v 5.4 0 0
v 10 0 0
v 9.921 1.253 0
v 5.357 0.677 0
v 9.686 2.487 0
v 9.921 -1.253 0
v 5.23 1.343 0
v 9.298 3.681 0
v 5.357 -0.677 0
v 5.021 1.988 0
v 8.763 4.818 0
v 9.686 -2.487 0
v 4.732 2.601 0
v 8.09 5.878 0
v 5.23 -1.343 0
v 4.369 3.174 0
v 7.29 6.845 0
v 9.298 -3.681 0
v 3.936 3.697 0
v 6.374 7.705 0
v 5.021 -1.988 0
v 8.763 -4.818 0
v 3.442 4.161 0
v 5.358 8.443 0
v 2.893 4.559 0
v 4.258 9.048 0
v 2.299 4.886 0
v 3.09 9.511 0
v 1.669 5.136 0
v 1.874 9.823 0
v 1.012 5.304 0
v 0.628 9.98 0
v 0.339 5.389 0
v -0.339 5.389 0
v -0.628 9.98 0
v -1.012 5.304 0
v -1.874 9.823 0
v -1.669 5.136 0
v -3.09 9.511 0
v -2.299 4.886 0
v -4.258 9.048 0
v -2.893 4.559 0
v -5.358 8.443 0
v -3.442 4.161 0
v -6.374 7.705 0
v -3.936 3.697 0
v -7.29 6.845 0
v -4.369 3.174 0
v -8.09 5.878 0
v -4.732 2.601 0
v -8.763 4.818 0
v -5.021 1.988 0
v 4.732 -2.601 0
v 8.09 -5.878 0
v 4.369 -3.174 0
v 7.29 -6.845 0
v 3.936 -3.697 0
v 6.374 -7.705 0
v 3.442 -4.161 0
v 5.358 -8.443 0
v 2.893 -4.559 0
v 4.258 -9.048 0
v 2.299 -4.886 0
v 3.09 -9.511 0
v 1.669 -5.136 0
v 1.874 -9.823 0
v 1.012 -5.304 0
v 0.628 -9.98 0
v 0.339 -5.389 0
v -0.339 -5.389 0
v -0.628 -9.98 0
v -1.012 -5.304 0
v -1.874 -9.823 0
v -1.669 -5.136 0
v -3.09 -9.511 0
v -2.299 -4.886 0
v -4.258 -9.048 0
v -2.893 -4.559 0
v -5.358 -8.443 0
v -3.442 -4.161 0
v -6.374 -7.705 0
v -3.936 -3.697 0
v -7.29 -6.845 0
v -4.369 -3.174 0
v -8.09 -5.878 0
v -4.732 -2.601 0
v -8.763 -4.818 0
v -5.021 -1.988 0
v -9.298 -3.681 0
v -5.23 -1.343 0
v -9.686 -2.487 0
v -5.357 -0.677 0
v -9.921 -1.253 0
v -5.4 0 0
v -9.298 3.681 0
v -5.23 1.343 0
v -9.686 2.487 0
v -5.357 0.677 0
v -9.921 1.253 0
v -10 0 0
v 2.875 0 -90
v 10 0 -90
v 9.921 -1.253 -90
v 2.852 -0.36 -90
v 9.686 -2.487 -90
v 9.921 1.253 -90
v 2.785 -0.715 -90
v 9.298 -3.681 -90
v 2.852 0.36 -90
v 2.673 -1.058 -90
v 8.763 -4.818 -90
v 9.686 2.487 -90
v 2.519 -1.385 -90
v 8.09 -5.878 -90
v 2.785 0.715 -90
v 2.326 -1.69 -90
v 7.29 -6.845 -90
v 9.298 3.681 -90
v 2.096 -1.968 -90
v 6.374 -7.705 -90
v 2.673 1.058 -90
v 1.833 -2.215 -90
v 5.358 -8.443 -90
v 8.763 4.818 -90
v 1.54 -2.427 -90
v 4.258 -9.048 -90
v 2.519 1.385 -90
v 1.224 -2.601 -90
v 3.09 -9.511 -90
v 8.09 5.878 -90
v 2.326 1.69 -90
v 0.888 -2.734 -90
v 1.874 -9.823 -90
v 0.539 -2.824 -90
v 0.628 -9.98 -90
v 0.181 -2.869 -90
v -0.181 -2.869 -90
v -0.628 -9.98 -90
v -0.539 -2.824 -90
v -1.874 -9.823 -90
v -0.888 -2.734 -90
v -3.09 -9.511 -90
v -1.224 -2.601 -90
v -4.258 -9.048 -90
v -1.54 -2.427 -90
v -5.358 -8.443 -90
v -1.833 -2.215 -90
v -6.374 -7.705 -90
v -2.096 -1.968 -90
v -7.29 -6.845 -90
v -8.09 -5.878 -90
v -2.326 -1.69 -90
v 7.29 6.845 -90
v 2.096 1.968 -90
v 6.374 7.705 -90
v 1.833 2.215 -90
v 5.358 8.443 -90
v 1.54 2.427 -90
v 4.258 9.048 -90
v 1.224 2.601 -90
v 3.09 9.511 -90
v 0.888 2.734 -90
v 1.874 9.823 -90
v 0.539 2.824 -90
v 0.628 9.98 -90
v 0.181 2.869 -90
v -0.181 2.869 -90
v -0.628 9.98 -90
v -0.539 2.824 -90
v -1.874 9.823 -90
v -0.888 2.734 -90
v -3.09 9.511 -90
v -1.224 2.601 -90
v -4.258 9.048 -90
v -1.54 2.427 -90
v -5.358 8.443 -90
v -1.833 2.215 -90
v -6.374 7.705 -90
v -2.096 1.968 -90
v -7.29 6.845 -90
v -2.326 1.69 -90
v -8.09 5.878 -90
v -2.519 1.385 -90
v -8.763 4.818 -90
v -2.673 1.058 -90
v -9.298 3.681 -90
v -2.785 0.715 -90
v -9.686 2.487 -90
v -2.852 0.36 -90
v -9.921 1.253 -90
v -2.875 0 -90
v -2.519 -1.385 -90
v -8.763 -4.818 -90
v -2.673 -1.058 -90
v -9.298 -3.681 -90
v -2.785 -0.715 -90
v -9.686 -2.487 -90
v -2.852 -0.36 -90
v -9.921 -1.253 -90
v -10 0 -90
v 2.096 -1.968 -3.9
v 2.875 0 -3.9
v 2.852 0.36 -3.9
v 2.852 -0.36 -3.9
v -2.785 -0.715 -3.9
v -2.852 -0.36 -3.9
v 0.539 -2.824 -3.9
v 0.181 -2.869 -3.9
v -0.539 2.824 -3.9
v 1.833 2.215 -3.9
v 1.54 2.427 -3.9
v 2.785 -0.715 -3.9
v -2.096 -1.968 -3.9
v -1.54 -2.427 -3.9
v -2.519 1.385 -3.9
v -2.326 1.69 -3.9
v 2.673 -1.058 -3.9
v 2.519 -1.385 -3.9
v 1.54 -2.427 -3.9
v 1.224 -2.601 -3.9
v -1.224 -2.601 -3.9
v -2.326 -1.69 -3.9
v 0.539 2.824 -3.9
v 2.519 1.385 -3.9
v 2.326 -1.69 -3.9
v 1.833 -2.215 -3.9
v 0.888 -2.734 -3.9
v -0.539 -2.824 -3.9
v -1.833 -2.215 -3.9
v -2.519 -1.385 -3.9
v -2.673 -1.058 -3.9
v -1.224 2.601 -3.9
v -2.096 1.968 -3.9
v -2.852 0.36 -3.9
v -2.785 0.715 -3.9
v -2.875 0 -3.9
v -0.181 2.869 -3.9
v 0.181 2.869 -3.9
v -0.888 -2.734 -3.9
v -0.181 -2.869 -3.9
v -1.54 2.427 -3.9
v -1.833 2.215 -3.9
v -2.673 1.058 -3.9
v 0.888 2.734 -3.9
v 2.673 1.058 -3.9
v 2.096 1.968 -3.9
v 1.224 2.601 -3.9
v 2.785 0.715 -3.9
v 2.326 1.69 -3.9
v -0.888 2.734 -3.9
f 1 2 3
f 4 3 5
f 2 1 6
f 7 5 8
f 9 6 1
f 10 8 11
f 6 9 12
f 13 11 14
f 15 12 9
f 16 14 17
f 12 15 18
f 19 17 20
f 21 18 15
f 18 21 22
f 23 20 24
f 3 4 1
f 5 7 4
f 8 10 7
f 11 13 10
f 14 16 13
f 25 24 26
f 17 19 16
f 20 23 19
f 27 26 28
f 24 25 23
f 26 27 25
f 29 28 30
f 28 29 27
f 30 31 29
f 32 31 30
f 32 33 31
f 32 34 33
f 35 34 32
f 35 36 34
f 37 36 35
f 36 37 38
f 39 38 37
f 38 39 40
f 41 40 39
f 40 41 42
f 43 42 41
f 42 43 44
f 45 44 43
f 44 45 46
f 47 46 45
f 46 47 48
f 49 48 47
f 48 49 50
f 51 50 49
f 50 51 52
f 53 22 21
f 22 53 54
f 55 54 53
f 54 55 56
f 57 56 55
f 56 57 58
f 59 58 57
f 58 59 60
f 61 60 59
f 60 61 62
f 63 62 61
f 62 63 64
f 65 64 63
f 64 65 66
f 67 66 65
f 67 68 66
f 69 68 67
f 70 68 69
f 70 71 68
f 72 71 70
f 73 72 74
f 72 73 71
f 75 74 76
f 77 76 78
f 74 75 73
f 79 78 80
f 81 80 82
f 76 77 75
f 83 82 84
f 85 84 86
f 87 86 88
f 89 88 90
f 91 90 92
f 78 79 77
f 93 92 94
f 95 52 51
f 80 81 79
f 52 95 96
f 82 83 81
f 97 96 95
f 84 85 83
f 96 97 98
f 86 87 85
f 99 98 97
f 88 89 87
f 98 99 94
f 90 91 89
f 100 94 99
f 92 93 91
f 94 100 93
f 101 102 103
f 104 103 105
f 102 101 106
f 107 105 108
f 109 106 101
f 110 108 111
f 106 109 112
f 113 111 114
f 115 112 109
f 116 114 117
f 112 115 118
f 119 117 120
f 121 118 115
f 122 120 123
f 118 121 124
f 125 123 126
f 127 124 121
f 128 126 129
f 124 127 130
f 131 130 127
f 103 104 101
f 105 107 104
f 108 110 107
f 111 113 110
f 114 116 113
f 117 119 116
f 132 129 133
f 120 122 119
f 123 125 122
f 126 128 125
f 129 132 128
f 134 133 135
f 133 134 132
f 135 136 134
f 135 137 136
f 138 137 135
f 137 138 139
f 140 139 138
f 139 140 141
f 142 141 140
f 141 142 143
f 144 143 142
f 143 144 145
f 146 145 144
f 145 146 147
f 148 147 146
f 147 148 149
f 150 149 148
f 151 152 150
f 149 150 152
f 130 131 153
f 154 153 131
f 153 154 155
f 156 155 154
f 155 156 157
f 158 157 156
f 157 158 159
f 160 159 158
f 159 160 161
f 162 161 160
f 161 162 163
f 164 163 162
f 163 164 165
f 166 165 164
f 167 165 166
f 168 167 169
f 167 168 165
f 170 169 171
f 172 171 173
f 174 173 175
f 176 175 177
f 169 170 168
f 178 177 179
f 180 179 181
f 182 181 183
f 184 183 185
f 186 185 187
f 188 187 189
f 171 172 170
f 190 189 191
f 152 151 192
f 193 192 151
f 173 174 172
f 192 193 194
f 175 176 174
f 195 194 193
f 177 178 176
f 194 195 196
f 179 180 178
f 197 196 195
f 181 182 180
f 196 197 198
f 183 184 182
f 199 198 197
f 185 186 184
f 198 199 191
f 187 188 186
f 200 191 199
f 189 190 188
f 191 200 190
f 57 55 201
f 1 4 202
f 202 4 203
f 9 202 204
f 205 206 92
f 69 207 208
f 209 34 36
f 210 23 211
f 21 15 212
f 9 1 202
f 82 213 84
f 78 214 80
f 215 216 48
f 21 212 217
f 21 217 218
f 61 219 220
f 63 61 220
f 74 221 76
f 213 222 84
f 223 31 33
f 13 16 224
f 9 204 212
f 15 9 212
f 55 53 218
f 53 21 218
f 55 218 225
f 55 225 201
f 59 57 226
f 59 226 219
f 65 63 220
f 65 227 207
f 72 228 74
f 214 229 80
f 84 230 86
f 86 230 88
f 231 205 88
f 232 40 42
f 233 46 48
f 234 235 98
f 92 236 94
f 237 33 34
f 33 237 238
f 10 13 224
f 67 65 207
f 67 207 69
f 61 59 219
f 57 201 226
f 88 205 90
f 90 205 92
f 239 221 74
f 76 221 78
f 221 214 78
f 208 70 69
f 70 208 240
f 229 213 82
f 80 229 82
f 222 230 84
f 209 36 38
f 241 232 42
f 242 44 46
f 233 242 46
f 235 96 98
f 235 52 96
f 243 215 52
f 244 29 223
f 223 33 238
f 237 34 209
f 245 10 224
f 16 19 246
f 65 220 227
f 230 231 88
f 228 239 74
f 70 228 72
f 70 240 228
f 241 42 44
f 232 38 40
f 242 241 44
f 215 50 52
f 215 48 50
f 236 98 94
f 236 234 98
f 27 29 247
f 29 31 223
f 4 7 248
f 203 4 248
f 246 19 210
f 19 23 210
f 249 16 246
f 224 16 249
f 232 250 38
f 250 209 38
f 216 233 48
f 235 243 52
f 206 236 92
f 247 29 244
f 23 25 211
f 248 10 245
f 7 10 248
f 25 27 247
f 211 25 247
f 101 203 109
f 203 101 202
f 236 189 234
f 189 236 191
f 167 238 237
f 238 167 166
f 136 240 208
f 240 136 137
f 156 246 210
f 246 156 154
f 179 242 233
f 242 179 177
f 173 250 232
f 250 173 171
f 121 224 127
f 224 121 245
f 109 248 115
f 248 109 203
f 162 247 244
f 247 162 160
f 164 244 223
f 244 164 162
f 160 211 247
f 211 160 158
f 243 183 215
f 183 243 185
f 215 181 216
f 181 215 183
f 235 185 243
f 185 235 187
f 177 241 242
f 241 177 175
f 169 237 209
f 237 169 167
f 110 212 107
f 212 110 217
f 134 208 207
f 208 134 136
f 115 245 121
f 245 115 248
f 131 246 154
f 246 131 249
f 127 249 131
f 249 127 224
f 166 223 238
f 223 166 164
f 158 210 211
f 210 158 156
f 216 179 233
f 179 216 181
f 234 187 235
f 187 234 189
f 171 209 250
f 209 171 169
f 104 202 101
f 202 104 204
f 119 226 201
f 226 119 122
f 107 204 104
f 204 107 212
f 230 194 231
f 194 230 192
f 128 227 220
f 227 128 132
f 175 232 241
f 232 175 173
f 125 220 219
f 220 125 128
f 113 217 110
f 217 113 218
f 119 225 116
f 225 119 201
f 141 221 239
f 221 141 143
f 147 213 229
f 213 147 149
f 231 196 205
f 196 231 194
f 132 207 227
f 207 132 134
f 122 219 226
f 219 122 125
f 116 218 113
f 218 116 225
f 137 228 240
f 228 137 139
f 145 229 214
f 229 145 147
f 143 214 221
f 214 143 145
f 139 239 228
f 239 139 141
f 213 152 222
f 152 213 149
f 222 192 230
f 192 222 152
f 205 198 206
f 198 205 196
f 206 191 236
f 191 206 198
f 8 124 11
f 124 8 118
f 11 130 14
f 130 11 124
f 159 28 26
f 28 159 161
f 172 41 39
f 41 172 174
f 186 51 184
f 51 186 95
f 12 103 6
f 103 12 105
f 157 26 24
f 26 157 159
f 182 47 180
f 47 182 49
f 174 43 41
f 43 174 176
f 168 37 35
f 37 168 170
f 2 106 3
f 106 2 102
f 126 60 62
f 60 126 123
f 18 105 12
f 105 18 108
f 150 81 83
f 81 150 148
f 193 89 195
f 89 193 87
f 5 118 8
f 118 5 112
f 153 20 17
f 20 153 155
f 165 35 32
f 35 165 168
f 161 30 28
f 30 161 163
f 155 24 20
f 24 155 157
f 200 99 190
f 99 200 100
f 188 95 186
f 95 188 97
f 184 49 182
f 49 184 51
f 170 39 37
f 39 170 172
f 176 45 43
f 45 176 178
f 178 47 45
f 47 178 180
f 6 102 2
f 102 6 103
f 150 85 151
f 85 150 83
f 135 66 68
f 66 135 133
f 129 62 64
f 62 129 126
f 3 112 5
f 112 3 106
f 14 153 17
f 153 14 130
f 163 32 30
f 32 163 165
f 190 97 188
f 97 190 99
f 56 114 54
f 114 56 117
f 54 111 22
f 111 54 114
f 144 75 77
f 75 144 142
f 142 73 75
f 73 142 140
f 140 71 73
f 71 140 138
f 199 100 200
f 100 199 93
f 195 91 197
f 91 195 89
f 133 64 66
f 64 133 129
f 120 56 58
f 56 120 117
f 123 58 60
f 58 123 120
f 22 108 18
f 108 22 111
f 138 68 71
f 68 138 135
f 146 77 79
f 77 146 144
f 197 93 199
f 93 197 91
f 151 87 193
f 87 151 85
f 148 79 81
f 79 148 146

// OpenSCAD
$fn = 50;


difference() {
	union() {
		translate(v = [0, 0, -90.0000000000]) {
			cylinder(h = 90, r = 10.0000000000);
		}
		cylinder(h = 0, r = 13.0000000000);
	}
	union() {
		translate(v = [0, 0, 0]) {
			rotate(a = [0, 0, 0]) {
				difference() {
					union() {
						#translate(v = [0, 0, -90.0000000000]) {
							cylinder(h = 90, r = 2.6000000000);
						}
						#translate(v = [0, 0, -3.9000000000]) {
							cylinder(h = 3.9000000000, r1 = 2.8750000000, r2 = 5.4000000000);
						}
						#translate(v = [0, 0, -90.0000000000]) {
							cylinder(h = 90, r = 2.8750000000);
						}
						#translate(v = [0, 0, -90.0000000000]) {
							cylinder(h = 90, r = 2.6000000000);
						}
					}
					union();
				}
			}
		}
	}
}
